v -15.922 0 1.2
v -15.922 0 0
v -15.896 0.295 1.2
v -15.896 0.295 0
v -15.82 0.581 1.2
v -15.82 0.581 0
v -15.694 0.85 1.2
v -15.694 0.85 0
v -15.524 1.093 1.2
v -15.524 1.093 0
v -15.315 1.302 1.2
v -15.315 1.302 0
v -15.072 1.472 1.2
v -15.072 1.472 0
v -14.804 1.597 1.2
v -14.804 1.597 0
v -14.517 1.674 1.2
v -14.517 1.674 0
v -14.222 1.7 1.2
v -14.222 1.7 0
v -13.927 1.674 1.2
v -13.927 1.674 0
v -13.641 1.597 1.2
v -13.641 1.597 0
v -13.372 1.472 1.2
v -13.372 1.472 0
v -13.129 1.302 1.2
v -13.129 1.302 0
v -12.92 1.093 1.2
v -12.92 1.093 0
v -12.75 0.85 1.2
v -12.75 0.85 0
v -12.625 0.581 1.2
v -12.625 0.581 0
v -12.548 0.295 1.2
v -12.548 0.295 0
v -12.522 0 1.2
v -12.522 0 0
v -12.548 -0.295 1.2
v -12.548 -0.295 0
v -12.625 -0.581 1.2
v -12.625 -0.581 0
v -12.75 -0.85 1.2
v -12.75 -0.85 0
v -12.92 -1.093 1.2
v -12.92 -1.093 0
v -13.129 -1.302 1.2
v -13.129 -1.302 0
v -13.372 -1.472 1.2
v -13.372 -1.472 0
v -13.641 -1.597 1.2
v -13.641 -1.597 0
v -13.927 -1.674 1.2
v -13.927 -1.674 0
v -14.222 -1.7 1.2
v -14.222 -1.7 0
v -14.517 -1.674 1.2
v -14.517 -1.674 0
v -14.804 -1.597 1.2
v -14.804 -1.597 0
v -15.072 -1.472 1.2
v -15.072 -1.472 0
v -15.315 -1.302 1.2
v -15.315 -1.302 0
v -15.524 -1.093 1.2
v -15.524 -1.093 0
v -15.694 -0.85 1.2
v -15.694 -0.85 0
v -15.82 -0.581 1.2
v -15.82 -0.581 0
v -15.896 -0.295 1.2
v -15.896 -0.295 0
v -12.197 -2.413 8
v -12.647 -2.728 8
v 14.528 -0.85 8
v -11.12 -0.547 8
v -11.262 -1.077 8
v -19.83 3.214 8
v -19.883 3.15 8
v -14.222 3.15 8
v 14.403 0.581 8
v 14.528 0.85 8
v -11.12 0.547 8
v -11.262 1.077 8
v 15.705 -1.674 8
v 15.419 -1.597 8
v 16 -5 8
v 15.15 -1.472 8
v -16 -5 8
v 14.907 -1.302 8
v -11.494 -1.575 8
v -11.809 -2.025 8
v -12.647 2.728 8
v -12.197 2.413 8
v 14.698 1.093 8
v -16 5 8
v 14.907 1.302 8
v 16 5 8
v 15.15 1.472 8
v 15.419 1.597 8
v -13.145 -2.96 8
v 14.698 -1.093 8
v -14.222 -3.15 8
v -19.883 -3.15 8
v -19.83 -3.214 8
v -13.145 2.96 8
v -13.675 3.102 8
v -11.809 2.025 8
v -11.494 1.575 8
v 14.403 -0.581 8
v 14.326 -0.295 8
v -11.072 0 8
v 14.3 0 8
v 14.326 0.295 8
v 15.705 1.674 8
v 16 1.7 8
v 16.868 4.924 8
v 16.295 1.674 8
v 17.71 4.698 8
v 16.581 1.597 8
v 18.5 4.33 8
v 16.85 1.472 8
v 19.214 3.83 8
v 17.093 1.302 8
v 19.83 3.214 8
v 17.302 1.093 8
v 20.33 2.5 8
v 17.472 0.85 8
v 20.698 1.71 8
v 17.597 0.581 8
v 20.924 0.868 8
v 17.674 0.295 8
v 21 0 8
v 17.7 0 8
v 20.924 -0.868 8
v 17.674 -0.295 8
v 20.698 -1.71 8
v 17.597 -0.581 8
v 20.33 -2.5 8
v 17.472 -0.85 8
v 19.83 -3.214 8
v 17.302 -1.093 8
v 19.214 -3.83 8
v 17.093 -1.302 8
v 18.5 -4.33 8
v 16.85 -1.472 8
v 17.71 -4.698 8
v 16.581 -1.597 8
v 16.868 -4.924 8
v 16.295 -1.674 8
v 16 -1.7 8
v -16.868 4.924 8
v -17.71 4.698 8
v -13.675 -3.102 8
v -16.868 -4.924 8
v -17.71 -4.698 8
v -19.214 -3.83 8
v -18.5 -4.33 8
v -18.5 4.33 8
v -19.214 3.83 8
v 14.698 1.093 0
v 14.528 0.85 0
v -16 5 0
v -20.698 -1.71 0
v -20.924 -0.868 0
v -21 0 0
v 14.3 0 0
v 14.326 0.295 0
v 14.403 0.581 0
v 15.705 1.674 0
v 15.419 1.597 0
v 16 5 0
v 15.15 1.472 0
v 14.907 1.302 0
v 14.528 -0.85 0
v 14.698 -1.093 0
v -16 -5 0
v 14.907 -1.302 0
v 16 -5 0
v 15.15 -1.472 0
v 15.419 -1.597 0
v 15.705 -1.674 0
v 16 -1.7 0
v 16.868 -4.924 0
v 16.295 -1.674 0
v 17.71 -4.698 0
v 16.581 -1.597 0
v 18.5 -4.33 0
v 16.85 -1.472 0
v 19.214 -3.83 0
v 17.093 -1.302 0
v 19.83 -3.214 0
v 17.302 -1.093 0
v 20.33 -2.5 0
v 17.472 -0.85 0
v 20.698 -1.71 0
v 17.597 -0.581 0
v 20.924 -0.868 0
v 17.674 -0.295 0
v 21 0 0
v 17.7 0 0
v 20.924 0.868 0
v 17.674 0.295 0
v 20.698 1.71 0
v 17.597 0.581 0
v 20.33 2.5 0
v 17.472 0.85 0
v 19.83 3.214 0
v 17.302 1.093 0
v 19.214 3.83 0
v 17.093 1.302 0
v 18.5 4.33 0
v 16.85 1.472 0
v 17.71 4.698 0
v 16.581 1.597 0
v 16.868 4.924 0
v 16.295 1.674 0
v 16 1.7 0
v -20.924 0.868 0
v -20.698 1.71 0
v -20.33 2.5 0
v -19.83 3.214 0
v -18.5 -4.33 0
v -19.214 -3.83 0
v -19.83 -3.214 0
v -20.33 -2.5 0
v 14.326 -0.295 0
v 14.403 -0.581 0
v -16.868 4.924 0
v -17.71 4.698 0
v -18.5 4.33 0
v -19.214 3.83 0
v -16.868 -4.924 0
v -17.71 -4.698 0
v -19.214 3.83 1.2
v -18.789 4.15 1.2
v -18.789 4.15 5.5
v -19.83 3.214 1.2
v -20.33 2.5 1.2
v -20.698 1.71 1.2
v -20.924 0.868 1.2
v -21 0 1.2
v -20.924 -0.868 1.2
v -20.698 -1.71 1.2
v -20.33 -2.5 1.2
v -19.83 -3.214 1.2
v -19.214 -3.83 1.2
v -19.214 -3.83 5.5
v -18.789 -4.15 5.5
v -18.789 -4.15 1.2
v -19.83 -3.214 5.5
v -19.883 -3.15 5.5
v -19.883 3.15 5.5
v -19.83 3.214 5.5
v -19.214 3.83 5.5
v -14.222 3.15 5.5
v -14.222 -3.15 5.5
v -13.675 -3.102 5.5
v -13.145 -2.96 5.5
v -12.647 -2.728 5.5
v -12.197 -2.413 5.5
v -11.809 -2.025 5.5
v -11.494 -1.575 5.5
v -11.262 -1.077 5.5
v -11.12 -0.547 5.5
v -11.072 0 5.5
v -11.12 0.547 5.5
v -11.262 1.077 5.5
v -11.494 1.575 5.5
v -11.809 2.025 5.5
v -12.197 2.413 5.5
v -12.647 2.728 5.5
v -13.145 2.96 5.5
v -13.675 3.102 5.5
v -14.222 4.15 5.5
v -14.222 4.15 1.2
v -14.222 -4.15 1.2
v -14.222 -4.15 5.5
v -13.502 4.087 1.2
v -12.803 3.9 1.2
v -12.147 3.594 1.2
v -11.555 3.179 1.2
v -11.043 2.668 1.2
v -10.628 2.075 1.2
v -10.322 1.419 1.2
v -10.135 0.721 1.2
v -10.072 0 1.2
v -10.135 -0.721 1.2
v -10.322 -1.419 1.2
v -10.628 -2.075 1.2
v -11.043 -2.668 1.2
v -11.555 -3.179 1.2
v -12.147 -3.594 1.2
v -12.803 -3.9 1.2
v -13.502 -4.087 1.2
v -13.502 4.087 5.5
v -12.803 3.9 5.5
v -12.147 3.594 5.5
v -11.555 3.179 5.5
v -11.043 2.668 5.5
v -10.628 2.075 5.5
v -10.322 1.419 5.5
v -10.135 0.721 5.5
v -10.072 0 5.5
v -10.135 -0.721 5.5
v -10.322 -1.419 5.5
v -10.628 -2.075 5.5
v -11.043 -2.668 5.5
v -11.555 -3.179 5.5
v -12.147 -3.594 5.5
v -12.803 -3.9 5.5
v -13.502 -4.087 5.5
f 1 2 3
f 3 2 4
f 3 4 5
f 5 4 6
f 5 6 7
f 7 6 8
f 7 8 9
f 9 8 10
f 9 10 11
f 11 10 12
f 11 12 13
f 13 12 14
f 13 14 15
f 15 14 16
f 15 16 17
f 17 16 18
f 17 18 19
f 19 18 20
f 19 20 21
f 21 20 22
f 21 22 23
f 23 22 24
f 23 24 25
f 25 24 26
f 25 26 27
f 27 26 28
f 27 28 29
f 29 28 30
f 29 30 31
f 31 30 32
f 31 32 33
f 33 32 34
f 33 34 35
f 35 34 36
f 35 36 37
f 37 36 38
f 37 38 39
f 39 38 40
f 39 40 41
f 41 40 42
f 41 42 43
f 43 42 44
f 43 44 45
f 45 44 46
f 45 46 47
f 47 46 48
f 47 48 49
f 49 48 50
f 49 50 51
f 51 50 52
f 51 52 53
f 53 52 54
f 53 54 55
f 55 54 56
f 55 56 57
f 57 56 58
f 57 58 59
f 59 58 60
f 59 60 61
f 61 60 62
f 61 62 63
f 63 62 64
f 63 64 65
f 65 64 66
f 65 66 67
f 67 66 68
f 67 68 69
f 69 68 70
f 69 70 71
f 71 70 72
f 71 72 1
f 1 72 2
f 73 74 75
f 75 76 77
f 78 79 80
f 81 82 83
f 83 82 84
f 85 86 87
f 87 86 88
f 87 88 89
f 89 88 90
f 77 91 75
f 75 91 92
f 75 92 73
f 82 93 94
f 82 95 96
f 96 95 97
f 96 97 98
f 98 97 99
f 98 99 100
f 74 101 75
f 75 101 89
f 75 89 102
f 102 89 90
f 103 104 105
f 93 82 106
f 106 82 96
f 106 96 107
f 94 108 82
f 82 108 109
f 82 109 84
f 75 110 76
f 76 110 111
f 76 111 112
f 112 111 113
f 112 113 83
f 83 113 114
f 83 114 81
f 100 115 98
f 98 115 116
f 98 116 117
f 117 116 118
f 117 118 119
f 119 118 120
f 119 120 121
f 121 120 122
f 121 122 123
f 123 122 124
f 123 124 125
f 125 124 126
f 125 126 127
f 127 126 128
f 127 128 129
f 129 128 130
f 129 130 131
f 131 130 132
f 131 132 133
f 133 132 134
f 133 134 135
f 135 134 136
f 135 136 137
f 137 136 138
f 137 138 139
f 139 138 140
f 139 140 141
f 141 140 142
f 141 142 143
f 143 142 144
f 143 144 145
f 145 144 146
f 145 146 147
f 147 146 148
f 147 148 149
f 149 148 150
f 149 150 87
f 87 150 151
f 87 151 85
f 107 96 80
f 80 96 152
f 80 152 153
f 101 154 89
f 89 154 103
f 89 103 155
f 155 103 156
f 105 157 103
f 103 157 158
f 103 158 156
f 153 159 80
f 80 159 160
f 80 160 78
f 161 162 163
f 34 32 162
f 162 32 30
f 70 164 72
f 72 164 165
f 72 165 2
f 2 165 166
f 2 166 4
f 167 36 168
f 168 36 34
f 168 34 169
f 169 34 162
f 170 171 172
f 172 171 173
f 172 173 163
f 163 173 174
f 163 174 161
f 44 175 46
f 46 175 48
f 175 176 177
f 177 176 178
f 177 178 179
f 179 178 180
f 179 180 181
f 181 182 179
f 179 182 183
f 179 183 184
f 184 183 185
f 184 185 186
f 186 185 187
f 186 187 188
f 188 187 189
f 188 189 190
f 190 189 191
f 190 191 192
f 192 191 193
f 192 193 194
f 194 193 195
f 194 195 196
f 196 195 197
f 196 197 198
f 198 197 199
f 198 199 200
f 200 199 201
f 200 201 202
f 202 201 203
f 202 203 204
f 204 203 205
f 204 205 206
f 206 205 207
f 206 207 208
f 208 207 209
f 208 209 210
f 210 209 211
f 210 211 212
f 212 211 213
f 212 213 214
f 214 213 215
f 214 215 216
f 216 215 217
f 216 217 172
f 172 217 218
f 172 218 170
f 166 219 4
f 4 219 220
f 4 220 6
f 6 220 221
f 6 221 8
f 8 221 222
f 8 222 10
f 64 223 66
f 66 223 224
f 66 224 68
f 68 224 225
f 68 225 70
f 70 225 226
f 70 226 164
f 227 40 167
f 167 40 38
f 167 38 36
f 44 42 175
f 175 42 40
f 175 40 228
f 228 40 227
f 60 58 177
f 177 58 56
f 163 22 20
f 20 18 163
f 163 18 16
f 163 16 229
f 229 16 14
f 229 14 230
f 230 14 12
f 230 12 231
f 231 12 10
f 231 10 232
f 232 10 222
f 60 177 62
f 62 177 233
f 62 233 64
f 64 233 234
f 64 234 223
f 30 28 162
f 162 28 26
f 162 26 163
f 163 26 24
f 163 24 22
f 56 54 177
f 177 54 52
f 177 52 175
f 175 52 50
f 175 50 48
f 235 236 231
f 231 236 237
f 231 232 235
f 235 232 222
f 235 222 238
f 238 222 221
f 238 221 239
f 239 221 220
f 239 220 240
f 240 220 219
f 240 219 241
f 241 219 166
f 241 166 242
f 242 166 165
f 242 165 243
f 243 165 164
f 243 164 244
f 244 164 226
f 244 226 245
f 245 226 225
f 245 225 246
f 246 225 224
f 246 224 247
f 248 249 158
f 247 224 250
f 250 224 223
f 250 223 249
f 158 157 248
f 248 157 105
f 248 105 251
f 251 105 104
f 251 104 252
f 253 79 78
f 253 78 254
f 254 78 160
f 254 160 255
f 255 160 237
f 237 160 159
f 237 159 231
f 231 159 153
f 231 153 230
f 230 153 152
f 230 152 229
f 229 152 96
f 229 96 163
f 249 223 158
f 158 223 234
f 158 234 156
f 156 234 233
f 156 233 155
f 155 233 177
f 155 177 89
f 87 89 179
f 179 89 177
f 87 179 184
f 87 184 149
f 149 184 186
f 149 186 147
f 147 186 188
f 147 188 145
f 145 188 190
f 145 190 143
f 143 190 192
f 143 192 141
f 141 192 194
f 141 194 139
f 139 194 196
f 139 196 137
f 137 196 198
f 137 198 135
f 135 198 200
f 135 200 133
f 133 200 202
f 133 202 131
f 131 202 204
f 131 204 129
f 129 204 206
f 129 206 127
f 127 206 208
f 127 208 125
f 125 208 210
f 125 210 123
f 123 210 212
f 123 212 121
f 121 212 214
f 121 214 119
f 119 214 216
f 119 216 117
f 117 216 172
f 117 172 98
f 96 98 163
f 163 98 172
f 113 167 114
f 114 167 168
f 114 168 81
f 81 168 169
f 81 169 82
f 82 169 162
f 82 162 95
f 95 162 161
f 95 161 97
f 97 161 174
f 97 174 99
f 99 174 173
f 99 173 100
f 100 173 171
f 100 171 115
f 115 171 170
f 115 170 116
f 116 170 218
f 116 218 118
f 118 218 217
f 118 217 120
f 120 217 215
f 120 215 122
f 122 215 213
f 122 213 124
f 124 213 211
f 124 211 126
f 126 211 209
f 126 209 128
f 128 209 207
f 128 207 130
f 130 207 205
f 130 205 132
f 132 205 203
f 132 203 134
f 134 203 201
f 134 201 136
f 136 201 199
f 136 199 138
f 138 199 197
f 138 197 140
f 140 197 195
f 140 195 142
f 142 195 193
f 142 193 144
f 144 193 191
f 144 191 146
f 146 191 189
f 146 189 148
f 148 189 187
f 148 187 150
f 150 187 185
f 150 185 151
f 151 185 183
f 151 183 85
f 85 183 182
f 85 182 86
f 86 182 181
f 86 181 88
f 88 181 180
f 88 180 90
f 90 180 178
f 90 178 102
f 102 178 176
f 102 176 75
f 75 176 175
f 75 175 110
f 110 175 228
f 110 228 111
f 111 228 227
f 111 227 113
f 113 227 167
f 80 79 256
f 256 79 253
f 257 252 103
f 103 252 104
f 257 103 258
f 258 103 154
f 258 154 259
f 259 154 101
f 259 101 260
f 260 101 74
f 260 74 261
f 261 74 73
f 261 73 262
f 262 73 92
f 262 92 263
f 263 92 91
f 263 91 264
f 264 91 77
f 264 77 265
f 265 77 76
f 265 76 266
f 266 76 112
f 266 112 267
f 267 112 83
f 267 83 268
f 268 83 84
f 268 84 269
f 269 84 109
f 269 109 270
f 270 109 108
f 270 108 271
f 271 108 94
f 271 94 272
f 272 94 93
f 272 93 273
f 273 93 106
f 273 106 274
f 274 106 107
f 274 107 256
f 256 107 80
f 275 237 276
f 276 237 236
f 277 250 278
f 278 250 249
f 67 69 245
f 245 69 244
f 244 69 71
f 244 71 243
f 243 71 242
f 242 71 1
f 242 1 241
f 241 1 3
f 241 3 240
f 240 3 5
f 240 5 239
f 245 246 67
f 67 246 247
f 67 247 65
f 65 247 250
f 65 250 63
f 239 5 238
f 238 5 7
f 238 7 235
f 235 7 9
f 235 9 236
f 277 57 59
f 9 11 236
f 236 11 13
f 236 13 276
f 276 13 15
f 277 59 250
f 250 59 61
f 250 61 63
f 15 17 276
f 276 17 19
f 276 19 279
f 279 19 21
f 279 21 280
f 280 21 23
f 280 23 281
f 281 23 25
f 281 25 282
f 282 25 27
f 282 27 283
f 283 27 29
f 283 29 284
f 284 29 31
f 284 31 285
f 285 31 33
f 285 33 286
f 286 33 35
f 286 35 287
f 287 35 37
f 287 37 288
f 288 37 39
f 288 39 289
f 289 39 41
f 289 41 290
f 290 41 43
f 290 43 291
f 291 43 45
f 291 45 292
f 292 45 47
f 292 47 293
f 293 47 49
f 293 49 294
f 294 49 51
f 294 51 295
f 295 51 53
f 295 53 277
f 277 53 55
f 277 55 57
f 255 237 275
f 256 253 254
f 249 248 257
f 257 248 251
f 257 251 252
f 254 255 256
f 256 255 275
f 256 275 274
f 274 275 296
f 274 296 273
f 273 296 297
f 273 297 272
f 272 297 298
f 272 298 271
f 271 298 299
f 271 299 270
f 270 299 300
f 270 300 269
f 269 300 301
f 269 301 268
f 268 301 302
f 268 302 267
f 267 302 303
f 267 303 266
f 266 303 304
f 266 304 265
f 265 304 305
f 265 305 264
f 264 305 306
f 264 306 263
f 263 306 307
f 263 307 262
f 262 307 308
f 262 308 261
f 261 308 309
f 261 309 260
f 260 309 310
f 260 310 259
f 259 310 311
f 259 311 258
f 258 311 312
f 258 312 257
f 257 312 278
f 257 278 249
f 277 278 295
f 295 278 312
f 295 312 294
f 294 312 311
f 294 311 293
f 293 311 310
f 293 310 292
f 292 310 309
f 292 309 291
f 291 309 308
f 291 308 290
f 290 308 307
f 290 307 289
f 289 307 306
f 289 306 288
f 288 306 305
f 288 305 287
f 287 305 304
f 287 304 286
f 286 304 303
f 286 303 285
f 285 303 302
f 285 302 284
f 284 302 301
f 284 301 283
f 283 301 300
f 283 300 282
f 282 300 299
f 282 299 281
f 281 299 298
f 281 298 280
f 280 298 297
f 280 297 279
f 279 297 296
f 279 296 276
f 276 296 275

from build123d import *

# Parameters (mm, degrees)
SKETCH1_R           = 1.7
BOSS_EXTRUDE1_DEPTH = 8
CUT_EXTRUDE1_DEPTH  = 2.5
CUT_EXTRUDE2_DEPTH  = 4.3


with BuildPart() as part:
    # Sketch1 → Boss-Extrude1 (new body)
    with BuildSketch(Plane.XY):
        with BuildLine():
            Line((-16, 5), (16, 5))
            ThreePointArc((16, 5), (21, 0), (16, -5))
            Line((16, -5), (-16, -5))
            ThreePointArc((-16, -5), (-21, 0), (-16, 5))
        make_face()
        with Locations((-14.2222, 0)):
            Circle(SKETCH1_R, mode=Mode.SUBTRACT)
        with Locations((16, 0)):
            Circle(SKETCH1_R, mode=Mode.SUBTRACT)
    extrude(amount=BOSS_EXTRUDE1_DEPTH)

    # Sketch3 → Cut-Extrude1 (cut)
    with BuildSketch(Plane.XY.offset(8)):
        with BuildLine():
            Line((-20.2222, 3.15), (-14.2222, 3.15))
            ThreePointArc((-14.2222, 3.15), (-11.0722, 0), (-14.2222, -3.15))
            Line((-14.2222, -3.15), (-20.2222, -3.15))
            ThreePointArc((-20.2222, -3.15), (-23.3722, 0), (-20.2222, 3.15))
        make_face()
    extrude(amount=-CUT_EXTRUDE1_DEPTH, mode=Mode.SUBTRACT)

    # Sketch4 → Cut-Extrude2 (cut)
    with BuildSketch(Plane.XY.offset(5.5)):
        with BuildLine():
            Line((-21, 4.15), (-14.2222, 4.15))
            ThreePointArc((-14.2222, 4.15), (-10.0722, 0), (-14.2222, -4.15))
            Line((-14.2222, -4.15), (-21, -4.15))
            ThreePointArc((-21, -4.15), (-25.15, 0), (-21, 4.15))
        make_face()
    extrude(amount=-CUT_EXTRUDE2_DEPTH, mode=Mode.SUBTRACT)


solid = part.part
